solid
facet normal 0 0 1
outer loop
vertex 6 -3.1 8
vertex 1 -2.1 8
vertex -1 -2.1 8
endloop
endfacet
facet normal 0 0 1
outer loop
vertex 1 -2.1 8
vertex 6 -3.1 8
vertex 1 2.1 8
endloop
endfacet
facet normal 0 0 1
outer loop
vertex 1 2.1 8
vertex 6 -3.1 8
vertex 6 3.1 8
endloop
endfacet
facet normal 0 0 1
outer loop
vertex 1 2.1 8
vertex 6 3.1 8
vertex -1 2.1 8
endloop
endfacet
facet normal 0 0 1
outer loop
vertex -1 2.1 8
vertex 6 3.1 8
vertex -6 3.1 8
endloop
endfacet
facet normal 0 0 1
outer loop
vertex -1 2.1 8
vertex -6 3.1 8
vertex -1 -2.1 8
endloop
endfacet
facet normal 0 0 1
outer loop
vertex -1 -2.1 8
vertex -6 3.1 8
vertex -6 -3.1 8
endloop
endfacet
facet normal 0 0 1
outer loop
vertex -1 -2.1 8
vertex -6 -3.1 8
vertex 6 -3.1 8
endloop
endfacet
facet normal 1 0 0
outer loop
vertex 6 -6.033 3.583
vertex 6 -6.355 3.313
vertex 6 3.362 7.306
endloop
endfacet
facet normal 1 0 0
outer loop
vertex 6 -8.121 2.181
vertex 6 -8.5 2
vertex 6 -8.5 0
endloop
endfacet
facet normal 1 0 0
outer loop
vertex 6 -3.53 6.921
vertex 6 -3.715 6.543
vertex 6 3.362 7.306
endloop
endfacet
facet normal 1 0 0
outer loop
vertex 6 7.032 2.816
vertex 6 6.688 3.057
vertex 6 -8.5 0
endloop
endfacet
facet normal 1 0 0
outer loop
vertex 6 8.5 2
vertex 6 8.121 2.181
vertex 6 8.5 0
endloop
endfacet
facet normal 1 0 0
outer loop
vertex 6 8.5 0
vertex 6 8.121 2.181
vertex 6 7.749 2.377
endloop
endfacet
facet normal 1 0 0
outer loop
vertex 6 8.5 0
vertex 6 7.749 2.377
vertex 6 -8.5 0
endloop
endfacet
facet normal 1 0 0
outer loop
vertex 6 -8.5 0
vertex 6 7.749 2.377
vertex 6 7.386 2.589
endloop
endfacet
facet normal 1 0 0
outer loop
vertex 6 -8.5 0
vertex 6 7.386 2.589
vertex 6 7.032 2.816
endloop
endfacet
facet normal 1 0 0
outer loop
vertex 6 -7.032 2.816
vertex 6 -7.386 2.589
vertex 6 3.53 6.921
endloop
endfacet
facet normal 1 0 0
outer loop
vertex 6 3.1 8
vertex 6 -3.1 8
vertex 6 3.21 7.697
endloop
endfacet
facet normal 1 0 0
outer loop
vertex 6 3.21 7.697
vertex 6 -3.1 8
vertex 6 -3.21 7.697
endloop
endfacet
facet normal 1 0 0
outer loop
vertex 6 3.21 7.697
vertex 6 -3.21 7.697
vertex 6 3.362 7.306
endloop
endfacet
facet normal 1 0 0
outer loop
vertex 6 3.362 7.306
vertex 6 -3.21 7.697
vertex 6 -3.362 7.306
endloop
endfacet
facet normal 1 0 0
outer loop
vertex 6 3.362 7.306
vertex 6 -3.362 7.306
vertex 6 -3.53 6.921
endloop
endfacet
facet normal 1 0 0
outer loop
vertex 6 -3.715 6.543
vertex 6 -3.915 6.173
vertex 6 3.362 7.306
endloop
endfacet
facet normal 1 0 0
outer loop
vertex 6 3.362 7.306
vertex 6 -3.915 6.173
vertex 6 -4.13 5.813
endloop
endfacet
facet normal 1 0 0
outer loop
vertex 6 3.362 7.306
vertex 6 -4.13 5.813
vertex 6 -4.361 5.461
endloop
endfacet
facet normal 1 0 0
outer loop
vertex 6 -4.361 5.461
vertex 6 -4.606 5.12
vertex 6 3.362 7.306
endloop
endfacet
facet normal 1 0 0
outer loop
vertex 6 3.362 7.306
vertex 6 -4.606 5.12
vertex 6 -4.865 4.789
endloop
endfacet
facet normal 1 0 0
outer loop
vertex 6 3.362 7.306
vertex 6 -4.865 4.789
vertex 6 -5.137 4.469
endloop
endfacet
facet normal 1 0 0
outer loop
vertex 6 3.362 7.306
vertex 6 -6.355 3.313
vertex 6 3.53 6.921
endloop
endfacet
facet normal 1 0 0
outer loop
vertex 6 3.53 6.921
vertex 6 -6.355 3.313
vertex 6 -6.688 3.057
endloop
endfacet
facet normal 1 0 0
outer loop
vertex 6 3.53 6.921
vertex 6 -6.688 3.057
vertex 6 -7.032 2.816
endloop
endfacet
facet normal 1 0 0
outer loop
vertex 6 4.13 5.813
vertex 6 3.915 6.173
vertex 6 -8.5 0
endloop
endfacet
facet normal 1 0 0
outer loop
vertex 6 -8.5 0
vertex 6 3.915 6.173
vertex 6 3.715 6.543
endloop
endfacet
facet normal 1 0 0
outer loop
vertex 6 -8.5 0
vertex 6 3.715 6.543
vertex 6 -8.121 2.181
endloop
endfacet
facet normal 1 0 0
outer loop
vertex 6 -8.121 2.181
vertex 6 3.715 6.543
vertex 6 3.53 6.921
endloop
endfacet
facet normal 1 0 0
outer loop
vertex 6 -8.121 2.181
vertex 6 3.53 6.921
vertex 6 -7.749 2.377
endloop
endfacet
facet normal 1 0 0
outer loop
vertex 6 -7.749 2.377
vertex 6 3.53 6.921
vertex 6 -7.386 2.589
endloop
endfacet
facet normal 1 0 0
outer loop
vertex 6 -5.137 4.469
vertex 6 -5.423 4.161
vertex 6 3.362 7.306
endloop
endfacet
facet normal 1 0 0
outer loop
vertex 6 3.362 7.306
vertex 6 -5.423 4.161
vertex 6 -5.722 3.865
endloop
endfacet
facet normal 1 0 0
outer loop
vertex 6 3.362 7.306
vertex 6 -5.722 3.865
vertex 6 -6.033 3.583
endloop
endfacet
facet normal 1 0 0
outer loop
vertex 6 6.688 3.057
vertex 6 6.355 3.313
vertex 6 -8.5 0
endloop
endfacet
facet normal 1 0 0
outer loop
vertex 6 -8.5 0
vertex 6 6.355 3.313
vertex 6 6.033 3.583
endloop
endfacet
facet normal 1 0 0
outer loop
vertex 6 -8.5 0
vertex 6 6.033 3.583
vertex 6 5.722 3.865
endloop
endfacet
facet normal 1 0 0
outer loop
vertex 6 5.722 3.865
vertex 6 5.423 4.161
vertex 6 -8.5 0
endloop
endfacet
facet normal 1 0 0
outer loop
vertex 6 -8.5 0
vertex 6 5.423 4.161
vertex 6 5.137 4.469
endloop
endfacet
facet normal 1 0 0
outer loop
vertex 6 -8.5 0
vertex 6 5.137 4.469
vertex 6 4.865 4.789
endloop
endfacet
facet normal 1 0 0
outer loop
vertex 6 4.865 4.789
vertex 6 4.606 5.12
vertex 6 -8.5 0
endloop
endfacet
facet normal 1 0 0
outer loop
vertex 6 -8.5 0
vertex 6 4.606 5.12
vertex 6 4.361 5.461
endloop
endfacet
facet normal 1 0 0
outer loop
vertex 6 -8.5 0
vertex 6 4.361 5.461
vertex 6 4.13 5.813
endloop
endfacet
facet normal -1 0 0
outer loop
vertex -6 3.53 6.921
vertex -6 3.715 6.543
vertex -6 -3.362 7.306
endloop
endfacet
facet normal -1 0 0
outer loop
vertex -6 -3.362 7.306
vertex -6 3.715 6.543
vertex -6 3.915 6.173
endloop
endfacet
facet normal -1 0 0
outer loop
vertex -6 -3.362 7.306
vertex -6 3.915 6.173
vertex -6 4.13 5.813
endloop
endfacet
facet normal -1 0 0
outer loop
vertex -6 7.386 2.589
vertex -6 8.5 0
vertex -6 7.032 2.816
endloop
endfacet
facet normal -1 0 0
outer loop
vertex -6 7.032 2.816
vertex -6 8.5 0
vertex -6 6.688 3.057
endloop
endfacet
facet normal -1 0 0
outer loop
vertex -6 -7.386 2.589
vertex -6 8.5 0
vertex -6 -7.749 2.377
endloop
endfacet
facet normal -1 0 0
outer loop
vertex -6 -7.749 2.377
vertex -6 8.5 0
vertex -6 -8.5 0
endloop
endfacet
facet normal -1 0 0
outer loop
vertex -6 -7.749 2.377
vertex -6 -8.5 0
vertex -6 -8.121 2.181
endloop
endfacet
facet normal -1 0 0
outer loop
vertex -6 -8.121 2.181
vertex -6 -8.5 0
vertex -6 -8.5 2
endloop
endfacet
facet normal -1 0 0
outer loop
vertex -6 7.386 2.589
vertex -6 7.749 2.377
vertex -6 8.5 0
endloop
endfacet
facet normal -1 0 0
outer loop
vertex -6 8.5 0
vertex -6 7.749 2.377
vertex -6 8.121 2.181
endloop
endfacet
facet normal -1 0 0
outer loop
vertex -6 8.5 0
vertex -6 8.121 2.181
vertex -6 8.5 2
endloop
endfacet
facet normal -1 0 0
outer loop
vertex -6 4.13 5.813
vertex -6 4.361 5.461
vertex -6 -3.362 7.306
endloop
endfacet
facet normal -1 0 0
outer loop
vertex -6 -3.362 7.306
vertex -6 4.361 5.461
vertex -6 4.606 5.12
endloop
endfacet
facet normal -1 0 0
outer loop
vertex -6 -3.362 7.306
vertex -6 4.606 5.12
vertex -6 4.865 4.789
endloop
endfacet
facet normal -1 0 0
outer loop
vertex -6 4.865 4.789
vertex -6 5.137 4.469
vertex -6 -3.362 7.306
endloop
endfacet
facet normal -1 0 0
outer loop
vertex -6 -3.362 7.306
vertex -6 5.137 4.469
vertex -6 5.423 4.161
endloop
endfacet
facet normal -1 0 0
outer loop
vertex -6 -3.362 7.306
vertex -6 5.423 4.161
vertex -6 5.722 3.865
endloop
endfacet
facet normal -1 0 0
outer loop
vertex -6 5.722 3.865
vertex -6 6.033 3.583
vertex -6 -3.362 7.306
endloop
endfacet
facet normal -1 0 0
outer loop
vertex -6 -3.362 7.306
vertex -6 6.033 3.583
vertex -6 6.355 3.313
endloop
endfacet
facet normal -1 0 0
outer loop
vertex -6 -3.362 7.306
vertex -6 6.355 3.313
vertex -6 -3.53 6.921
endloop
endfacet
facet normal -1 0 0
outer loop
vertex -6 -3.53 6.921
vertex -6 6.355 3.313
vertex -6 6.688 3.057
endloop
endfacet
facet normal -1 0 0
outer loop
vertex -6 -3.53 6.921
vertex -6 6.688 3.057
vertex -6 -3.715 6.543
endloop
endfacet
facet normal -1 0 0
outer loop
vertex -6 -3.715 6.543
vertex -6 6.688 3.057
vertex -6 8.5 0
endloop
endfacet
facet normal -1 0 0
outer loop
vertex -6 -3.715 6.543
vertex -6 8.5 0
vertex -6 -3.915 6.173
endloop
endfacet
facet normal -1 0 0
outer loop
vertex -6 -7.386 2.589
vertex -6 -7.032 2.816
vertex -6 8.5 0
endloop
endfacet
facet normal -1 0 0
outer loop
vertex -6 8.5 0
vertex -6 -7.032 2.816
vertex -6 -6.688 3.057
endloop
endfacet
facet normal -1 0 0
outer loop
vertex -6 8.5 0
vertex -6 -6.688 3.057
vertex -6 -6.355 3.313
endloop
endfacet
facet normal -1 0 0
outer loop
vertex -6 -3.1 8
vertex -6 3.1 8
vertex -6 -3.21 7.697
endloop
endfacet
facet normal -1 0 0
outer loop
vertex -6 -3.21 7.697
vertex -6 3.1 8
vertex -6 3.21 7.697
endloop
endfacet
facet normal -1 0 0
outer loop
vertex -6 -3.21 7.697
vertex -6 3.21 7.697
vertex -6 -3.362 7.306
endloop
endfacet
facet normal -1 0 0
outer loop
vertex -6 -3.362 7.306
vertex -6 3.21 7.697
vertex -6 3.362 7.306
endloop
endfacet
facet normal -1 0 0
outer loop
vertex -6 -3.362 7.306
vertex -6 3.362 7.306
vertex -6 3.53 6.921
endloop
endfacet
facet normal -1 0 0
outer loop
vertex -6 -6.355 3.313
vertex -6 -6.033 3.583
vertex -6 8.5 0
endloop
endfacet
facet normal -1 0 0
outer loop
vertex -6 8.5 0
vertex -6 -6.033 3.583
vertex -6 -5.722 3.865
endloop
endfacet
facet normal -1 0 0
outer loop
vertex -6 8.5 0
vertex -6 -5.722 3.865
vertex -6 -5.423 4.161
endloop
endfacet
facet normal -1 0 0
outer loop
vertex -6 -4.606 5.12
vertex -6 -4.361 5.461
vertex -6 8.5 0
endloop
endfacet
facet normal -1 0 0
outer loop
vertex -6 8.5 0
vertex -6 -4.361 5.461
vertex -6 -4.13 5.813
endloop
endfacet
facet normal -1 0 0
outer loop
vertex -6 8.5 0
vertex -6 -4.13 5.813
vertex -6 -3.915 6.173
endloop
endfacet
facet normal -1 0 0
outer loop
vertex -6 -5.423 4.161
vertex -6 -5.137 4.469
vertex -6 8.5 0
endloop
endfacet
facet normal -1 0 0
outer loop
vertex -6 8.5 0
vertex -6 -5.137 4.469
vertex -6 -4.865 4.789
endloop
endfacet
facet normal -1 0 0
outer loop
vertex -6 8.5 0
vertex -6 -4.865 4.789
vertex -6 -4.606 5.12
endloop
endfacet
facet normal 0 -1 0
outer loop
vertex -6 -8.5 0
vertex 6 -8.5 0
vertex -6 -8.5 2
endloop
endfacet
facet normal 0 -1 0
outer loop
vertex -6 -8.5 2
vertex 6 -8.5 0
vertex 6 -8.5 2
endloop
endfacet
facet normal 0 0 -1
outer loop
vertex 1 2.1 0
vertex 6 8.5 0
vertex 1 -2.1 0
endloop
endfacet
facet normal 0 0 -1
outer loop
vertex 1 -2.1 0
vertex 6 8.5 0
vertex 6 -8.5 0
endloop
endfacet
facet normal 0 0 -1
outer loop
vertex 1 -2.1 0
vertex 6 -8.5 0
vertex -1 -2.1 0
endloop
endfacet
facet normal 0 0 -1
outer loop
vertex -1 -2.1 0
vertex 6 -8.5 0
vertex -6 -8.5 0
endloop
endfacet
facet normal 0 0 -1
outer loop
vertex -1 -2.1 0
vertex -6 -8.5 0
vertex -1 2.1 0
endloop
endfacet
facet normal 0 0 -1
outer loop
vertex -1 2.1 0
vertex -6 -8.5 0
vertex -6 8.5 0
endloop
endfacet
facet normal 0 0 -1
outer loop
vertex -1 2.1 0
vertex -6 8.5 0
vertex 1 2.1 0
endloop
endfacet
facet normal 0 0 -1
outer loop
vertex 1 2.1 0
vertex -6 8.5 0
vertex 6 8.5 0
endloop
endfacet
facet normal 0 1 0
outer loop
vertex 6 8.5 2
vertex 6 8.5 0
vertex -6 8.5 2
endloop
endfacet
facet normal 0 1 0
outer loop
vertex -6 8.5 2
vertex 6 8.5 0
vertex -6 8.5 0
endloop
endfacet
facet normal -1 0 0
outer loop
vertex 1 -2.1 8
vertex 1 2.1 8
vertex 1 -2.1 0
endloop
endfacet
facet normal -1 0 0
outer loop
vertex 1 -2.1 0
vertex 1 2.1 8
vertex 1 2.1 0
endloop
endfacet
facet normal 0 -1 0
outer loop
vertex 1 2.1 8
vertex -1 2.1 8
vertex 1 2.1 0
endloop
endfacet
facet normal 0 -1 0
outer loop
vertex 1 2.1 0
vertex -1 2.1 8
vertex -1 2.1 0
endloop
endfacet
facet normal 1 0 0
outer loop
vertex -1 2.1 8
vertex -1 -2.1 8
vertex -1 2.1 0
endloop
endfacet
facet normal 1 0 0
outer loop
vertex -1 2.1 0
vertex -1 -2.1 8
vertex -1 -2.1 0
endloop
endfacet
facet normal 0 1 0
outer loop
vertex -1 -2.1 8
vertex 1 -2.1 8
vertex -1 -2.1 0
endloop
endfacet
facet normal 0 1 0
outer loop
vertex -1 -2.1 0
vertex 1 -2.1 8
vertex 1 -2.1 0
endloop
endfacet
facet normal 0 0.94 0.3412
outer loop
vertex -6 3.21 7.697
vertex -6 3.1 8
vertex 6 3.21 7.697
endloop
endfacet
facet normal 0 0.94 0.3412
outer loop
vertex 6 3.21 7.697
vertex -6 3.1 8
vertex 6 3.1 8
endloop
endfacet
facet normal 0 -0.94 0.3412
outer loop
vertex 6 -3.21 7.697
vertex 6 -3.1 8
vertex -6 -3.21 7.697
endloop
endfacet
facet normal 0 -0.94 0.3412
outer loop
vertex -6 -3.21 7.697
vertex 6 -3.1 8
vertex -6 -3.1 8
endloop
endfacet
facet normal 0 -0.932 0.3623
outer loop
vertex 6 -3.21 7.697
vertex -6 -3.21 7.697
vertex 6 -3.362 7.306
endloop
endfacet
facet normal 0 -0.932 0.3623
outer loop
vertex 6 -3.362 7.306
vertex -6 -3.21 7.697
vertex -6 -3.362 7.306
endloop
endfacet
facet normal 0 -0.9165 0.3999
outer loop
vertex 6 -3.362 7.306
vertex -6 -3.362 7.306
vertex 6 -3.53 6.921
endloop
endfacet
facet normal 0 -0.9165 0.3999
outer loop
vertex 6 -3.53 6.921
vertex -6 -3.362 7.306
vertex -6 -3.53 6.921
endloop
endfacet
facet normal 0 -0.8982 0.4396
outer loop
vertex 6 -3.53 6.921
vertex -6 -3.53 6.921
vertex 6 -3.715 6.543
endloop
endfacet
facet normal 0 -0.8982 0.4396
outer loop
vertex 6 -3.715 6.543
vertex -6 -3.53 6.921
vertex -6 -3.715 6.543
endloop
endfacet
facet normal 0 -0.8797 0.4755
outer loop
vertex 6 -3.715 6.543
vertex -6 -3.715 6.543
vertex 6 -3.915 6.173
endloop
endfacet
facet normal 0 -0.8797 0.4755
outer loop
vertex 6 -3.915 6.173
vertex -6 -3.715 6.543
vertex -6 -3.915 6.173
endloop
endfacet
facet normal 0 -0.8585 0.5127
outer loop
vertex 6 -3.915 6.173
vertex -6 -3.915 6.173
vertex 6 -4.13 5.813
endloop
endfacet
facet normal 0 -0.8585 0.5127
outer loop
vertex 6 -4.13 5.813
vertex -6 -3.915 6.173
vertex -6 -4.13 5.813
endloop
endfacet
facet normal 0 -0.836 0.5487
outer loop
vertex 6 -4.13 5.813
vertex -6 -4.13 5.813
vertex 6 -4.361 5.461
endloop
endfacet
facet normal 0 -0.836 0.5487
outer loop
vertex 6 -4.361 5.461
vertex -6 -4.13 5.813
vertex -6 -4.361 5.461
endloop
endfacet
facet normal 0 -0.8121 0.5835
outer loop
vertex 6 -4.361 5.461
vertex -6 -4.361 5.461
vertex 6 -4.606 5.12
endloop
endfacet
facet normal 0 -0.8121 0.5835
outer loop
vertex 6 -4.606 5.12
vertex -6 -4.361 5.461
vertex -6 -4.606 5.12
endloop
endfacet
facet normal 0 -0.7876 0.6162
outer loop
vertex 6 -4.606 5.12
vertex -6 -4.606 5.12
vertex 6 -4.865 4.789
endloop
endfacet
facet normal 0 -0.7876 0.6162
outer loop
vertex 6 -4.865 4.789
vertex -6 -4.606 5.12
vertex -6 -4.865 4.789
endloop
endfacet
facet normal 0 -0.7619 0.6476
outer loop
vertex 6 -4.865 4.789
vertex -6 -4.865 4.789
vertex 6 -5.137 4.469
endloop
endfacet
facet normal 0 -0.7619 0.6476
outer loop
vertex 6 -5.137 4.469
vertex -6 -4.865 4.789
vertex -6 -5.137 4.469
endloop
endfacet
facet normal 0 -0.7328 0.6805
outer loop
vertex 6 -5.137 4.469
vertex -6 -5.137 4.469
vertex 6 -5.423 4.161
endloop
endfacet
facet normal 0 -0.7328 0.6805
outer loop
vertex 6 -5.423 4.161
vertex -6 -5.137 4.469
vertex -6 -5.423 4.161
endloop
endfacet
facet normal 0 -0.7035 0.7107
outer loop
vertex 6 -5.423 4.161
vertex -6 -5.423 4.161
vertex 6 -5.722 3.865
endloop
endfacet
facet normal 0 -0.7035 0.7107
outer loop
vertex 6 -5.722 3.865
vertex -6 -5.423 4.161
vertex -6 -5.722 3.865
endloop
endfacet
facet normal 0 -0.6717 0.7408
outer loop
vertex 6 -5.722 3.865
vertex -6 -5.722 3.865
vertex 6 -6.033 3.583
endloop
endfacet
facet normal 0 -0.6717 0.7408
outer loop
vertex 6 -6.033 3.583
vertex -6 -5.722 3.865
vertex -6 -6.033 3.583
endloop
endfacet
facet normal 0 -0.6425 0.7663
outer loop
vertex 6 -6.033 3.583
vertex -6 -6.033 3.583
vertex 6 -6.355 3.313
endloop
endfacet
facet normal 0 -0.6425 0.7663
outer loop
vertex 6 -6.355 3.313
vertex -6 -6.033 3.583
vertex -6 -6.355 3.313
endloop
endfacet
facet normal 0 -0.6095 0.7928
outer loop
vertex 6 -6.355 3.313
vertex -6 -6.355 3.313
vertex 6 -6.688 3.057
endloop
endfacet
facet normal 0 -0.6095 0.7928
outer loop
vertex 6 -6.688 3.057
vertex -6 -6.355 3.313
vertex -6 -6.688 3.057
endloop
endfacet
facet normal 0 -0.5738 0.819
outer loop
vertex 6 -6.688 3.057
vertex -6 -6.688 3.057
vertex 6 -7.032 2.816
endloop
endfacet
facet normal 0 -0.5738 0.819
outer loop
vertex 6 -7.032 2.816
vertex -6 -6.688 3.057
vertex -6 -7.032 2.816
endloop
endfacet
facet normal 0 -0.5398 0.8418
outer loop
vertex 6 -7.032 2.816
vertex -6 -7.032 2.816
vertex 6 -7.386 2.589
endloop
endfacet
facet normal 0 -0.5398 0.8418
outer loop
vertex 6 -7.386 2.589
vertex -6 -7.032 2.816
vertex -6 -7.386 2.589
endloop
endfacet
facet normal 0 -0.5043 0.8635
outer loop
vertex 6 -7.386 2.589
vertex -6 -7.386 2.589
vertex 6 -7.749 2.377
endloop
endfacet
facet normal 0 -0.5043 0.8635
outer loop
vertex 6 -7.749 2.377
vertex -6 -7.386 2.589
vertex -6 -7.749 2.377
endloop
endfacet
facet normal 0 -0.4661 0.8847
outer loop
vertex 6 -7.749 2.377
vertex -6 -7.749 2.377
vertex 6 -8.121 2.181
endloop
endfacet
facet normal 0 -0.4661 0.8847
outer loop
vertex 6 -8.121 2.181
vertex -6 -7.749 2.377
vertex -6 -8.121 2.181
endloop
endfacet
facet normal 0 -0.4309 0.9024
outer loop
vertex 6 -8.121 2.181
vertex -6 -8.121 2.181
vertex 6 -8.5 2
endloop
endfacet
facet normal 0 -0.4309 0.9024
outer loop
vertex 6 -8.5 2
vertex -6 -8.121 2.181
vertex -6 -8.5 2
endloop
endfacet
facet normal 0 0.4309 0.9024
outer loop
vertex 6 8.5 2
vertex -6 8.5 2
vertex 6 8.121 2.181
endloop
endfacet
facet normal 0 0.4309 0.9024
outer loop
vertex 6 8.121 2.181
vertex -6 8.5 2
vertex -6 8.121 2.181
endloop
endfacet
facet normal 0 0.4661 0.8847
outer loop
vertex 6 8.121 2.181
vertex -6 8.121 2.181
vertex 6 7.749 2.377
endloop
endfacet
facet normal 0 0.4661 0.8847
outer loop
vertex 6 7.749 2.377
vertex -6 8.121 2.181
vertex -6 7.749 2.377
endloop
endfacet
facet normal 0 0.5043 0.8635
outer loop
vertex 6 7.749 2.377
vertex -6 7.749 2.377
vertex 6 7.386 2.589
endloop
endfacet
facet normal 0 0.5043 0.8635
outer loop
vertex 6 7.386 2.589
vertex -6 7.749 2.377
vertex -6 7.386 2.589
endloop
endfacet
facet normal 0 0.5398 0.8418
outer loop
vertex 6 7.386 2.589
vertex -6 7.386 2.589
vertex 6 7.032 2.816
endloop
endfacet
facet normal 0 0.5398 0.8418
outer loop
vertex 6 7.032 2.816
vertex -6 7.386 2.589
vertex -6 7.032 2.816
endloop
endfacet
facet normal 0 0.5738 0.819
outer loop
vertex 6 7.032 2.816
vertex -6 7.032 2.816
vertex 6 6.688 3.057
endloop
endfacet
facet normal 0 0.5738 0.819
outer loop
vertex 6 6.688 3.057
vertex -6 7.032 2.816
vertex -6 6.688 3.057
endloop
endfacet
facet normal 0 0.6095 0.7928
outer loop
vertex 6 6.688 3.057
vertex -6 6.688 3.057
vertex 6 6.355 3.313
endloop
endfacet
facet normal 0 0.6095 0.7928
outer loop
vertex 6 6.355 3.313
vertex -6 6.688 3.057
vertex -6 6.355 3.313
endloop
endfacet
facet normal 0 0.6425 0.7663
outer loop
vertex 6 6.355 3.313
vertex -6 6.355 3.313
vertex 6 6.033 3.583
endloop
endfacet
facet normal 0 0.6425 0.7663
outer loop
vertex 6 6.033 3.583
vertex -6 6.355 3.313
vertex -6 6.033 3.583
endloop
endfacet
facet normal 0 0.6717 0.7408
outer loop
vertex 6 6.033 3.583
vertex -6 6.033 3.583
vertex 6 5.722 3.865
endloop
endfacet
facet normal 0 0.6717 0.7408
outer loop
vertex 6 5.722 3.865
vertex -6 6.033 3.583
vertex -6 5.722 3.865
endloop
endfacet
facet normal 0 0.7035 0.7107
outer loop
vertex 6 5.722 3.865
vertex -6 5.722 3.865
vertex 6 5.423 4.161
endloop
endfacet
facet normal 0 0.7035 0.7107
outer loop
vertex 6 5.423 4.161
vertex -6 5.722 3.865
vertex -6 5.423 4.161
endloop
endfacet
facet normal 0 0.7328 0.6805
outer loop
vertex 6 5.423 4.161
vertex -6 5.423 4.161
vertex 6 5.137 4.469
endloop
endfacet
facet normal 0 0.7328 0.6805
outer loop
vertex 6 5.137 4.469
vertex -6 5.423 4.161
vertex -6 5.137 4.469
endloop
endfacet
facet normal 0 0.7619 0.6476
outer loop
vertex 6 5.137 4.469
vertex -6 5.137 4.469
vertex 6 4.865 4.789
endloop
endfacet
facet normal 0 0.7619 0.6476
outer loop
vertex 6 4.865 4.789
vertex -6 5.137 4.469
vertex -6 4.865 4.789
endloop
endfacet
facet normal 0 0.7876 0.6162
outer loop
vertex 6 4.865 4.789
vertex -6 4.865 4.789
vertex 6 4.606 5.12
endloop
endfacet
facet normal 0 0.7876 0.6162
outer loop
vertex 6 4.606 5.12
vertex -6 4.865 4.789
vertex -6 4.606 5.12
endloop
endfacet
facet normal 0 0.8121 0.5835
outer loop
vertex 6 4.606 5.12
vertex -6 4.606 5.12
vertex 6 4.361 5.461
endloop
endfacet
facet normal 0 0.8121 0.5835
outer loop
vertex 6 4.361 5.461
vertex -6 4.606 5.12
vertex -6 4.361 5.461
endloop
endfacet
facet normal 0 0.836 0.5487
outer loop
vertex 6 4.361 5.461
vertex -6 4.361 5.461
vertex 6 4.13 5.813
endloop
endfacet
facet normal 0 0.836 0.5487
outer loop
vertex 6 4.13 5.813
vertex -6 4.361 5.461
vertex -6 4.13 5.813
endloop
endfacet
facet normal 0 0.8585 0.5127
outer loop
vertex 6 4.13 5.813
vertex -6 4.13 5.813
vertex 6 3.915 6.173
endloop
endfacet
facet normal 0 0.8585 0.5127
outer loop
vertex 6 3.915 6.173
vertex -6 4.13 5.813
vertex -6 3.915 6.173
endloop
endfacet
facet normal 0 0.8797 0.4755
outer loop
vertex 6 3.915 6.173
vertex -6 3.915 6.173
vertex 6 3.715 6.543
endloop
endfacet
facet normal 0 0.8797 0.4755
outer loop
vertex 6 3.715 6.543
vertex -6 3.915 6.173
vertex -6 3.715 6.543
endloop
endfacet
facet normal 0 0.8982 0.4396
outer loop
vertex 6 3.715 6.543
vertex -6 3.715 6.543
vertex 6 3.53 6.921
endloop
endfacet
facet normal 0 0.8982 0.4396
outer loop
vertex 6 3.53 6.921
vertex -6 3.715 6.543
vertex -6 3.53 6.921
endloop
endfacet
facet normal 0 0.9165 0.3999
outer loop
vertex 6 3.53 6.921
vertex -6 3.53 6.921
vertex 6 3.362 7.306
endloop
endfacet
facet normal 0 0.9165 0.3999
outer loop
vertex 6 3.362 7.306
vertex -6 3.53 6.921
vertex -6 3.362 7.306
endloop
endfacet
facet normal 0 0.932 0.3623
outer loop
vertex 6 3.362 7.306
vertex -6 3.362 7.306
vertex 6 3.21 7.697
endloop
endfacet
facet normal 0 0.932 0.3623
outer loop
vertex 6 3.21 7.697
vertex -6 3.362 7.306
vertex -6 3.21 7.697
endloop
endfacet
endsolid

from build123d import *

# Parameters (mm, degrees)
SKETCH1_W      = 12
SKETCH1_H      = 17
SKETCH1_W_2    = 2
SKETCH1_H_2    = 4.2
EXTRUDE1_DEPTH = 8
EXTRUDE2_DEPTH = 17.740669043
FILLET1_R      = 10


with BuildPart() as part:
    # Sketch1 → Extrude1 (new body)
    with BuildSketch(Plane.XY):
        Rectangle(SKETCH1_W, SKETCH1_H)
        Rectangle(SKETCH1_W_2, SKETCH1_H_2, mode=Mode.SUBTRACT)
    extrude(amount=EXTRUDE1_DEPTH)

    # Sketch2 → Extrude2 (cut, through all)
    with BuildSketch(Plane.ZY.offset(6)):
        Polygon((2, 8.5), (3.349347136, 4.792699212), (8, 3.1), (8, 8.5), align=None)
    extrude2 = extrude(amount=-EXTRUDE2_DEPTH, mode=Mode.SUBTRACT)

    # Mirror1: Extrude2 across plane
    add(extrude2.mirror(Plane.ZX), mode=Mode.SUBTRACT)

    # Fillet1
    # the kernel refuses this fillet: 10 mm, written as the material it adds along each edge
    with BuildSketch(Plane(origin=(-6, -4.792699212, 3.349347136), x_dir=(0, -0.9396926207859071, -0.34202014332567254), z_dir=(1, 0, 0))) as fillet1_piece_1:
        with BuildLine():
            CenterArc((4.686139514, -9.972514667), FILLET1_R, 94.249009028, 45.750990972)
            Line((-2.974304917, -3.54463857), (-3.127513806, -3.416081048))
            Line((-3.127513806, -3.416081048), (-0.153208889, 0.128557522))
            Line((-0.153208889, 0.128557522), (0, 0.2))
            ThreePointArc((0, 0.2), (1.972613547, 0.2), (3.930408846, 0.199450293))
            Line((3.930408846, 0.199450293), (3.945227094, 0))
        make_face()
    extrude(amount=12)
    with BuildSketch(Plane(origin=(-6, 4.792699212, 3.349347136), x_dir=(0, 0.9396926207859071, -0.34202014332567254), z_dir=(1, 0, 0))) as fillet1_piece_2:
        with BuildLine():
            CenterArc((4.686139514, 9.972514667), FILLET1_R, 220, 45.750990972)
            Line((-2.974304917, 3.54463857), (-3.127513806, 3.416081048))
            Line((-3.127513806, 3.416081048), (-0.153208889, -0.128557522))
            Line((-0.153208889, -0.128557522), (0, -0.2))
            ThreePointArc((0, -0.2), (1.972613547, -0.2), (3.930408846, -0.199450293))
            Line((3.930408846, -0.199450293), (3.945227094, 0))
        make_face()
    extrude(amount=12)


solid = part.part
